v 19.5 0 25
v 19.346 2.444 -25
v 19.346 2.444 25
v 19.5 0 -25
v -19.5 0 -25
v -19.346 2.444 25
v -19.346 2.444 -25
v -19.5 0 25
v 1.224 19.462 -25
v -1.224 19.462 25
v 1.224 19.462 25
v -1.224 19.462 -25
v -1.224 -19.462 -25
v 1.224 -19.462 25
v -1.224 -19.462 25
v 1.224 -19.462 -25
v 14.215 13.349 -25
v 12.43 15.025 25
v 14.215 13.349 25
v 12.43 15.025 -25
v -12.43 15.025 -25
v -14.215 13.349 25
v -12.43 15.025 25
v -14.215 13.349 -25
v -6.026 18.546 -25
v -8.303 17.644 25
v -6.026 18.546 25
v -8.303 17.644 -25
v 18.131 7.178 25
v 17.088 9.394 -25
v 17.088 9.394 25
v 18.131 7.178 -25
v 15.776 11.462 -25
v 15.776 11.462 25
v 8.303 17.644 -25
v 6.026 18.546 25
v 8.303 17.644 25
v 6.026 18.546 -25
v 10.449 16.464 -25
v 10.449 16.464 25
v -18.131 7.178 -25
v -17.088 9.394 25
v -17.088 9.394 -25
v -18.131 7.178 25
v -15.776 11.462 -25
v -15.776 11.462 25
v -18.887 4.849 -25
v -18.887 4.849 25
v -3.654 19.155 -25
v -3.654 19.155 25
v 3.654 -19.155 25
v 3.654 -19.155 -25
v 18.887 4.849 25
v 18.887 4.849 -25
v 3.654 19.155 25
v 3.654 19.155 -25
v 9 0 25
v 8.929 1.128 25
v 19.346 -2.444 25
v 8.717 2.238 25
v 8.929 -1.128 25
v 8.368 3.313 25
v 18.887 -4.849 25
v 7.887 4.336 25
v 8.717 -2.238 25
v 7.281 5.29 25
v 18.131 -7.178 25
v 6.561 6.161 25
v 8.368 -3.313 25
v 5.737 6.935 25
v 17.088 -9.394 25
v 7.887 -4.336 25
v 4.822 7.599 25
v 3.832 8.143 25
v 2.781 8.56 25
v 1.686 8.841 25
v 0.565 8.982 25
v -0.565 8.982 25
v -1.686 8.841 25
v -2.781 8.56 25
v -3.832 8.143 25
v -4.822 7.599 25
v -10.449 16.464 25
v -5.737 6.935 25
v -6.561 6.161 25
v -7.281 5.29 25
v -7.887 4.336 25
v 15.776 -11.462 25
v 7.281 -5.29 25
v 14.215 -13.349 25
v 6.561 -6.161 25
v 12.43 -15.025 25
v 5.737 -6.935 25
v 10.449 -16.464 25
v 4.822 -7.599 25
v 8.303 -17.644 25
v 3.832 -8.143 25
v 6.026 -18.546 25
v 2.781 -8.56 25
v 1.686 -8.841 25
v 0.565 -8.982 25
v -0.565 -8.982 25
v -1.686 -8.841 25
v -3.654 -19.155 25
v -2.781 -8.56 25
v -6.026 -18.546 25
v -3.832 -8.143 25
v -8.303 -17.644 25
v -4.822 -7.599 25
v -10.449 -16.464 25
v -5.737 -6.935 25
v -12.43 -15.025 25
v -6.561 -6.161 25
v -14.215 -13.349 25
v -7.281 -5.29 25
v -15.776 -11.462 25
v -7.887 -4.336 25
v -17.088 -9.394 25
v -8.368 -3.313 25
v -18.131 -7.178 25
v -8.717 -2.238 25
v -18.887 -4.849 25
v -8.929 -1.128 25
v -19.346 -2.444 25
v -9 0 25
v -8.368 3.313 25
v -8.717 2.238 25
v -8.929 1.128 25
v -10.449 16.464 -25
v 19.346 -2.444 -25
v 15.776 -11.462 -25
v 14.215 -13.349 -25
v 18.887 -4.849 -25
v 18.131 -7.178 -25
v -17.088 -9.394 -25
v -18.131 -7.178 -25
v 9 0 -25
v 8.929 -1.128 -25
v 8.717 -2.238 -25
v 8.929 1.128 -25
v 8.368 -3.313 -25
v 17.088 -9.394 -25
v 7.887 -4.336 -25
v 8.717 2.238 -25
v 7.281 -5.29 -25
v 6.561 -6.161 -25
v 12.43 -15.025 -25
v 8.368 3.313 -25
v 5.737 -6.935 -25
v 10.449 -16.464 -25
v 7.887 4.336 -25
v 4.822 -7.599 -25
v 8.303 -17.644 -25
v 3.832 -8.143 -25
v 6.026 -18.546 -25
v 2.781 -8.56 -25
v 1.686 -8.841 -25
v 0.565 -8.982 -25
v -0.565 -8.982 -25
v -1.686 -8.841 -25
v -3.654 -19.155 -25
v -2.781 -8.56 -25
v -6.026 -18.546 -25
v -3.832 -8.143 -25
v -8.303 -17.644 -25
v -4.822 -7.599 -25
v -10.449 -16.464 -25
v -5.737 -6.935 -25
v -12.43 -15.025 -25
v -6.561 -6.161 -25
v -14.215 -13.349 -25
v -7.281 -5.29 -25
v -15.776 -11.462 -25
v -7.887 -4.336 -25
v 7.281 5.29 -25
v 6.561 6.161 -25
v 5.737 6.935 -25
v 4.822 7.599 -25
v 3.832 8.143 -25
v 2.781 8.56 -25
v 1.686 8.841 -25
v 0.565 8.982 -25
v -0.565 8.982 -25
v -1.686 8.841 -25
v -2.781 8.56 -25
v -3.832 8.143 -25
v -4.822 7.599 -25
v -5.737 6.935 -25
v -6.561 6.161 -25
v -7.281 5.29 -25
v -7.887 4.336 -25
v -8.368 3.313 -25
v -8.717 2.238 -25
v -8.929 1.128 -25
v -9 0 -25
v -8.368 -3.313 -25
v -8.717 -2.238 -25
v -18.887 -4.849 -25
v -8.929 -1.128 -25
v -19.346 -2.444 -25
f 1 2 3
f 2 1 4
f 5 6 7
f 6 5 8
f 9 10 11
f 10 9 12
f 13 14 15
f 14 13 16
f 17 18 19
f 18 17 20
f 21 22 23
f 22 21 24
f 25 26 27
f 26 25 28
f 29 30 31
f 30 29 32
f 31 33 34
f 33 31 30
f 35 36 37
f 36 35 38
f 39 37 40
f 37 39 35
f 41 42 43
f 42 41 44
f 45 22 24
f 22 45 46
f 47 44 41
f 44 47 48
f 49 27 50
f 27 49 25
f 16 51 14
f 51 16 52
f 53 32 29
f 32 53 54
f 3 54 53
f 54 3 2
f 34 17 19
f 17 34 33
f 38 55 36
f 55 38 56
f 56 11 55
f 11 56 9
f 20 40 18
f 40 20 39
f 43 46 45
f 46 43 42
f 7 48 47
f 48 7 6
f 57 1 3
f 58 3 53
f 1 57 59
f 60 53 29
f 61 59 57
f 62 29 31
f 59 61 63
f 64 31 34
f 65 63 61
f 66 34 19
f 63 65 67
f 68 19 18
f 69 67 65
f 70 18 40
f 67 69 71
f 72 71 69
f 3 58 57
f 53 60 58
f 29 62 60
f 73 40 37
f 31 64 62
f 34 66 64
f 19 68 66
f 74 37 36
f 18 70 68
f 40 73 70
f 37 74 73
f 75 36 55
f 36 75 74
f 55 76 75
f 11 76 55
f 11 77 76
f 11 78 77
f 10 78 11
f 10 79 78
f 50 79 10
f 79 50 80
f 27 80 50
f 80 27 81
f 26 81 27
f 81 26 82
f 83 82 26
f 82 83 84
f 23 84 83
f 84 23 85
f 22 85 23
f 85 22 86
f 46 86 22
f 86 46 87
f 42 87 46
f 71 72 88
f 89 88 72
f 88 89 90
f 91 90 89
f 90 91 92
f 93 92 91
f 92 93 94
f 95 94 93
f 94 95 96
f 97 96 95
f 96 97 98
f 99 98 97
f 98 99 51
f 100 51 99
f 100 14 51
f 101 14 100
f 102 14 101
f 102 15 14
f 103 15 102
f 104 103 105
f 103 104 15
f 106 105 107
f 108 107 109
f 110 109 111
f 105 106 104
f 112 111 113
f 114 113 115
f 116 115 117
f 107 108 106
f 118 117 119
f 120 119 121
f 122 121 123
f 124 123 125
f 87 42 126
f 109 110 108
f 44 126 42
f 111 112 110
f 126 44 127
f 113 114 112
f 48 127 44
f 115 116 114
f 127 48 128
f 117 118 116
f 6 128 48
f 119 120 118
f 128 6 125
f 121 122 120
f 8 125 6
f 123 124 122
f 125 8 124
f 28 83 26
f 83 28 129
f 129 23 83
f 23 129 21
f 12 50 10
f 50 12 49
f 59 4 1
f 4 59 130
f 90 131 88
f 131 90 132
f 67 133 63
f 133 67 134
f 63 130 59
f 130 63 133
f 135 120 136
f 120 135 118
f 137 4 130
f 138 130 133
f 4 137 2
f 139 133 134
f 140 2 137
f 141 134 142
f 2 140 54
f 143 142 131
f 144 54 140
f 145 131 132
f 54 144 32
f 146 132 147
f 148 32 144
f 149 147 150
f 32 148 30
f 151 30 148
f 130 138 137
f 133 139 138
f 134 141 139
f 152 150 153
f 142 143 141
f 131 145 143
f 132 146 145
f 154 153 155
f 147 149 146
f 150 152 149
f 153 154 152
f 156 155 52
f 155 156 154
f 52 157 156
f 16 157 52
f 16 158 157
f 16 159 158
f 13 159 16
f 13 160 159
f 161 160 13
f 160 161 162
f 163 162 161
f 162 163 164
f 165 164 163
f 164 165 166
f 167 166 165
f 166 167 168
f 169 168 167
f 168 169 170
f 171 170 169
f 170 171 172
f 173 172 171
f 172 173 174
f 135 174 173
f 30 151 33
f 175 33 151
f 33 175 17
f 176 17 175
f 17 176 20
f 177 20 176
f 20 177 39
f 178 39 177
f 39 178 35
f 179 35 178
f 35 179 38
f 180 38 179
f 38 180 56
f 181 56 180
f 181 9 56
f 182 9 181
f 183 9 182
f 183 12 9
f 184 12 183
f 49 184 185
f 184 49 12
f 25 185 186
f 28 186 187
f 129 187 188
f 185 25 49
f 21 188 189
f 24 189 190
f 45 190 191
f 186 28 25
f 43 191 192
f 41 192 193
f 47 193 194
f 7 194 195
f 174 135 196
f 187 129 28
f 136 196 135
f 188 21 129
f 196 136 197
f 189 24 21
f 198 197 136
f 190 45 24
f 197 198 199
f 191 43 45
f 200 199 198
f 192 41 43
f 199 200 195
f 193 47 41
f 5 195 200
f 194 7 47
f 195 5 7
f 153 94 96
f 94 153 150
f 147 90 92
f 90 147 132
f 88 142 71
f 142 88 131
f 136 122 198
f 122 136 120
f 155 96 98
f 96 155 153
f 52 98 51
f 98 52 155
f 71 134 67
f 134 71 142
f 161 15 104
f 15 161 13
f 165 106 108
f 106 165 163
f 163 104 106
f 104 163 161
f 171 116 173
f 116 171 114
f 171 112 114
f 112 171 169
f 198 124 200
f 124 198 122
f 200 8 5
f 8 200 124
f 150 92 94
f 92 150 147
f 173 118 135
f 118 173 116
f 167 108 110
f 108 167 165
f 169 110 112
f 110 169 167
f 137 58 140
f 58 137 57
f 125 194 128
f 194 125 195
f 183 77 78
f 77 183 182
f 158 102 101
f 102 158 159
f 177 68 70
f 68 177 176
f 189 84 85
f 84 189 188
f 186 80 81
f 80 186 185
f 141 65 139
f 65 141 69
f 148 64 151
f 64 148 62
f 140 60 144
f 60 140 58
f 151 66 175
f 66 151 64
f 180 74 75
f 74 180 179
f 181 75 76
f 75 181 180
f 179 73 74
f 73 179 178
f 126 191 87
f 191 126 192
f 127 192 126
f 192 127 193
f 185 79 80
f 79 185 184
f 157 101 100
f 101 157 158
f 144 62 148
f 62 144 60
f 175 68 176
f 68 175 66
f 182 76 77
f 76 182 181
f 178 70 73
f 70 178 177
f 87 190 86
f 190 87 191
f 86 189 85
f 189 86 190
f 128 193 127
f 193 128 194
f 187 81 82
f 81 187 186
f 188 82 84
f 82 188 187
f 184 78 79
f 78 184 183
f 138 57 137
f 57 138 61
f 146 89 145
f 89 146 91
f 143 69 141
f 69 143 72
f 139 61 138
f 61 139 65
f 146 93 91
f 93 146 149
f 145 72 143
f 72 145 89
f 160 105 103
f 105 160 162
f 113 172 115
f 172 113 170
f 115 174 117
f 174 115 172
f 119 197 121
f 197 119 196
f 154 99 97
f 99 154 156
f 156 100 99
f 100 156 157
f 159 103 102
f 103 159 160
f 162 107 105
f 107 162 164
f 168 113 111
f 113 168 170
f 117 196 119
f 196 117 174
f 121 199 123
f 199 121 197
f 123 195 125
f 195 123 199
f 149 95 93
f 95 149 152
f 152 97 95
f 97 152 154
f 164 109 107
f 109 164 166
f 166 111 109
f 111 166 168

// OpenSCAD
$fn = 50;


difference() {
	union() {
		translate(v = [0, 0, -25.0000000000]) {
			cylinder(h = 50, r = 19.5000000000);
		}
	}
	union() {
		translate(v = [0, 0, -100.0000000000]) {
			cylinder(h = 200, r = 9);
		}
	}
}
